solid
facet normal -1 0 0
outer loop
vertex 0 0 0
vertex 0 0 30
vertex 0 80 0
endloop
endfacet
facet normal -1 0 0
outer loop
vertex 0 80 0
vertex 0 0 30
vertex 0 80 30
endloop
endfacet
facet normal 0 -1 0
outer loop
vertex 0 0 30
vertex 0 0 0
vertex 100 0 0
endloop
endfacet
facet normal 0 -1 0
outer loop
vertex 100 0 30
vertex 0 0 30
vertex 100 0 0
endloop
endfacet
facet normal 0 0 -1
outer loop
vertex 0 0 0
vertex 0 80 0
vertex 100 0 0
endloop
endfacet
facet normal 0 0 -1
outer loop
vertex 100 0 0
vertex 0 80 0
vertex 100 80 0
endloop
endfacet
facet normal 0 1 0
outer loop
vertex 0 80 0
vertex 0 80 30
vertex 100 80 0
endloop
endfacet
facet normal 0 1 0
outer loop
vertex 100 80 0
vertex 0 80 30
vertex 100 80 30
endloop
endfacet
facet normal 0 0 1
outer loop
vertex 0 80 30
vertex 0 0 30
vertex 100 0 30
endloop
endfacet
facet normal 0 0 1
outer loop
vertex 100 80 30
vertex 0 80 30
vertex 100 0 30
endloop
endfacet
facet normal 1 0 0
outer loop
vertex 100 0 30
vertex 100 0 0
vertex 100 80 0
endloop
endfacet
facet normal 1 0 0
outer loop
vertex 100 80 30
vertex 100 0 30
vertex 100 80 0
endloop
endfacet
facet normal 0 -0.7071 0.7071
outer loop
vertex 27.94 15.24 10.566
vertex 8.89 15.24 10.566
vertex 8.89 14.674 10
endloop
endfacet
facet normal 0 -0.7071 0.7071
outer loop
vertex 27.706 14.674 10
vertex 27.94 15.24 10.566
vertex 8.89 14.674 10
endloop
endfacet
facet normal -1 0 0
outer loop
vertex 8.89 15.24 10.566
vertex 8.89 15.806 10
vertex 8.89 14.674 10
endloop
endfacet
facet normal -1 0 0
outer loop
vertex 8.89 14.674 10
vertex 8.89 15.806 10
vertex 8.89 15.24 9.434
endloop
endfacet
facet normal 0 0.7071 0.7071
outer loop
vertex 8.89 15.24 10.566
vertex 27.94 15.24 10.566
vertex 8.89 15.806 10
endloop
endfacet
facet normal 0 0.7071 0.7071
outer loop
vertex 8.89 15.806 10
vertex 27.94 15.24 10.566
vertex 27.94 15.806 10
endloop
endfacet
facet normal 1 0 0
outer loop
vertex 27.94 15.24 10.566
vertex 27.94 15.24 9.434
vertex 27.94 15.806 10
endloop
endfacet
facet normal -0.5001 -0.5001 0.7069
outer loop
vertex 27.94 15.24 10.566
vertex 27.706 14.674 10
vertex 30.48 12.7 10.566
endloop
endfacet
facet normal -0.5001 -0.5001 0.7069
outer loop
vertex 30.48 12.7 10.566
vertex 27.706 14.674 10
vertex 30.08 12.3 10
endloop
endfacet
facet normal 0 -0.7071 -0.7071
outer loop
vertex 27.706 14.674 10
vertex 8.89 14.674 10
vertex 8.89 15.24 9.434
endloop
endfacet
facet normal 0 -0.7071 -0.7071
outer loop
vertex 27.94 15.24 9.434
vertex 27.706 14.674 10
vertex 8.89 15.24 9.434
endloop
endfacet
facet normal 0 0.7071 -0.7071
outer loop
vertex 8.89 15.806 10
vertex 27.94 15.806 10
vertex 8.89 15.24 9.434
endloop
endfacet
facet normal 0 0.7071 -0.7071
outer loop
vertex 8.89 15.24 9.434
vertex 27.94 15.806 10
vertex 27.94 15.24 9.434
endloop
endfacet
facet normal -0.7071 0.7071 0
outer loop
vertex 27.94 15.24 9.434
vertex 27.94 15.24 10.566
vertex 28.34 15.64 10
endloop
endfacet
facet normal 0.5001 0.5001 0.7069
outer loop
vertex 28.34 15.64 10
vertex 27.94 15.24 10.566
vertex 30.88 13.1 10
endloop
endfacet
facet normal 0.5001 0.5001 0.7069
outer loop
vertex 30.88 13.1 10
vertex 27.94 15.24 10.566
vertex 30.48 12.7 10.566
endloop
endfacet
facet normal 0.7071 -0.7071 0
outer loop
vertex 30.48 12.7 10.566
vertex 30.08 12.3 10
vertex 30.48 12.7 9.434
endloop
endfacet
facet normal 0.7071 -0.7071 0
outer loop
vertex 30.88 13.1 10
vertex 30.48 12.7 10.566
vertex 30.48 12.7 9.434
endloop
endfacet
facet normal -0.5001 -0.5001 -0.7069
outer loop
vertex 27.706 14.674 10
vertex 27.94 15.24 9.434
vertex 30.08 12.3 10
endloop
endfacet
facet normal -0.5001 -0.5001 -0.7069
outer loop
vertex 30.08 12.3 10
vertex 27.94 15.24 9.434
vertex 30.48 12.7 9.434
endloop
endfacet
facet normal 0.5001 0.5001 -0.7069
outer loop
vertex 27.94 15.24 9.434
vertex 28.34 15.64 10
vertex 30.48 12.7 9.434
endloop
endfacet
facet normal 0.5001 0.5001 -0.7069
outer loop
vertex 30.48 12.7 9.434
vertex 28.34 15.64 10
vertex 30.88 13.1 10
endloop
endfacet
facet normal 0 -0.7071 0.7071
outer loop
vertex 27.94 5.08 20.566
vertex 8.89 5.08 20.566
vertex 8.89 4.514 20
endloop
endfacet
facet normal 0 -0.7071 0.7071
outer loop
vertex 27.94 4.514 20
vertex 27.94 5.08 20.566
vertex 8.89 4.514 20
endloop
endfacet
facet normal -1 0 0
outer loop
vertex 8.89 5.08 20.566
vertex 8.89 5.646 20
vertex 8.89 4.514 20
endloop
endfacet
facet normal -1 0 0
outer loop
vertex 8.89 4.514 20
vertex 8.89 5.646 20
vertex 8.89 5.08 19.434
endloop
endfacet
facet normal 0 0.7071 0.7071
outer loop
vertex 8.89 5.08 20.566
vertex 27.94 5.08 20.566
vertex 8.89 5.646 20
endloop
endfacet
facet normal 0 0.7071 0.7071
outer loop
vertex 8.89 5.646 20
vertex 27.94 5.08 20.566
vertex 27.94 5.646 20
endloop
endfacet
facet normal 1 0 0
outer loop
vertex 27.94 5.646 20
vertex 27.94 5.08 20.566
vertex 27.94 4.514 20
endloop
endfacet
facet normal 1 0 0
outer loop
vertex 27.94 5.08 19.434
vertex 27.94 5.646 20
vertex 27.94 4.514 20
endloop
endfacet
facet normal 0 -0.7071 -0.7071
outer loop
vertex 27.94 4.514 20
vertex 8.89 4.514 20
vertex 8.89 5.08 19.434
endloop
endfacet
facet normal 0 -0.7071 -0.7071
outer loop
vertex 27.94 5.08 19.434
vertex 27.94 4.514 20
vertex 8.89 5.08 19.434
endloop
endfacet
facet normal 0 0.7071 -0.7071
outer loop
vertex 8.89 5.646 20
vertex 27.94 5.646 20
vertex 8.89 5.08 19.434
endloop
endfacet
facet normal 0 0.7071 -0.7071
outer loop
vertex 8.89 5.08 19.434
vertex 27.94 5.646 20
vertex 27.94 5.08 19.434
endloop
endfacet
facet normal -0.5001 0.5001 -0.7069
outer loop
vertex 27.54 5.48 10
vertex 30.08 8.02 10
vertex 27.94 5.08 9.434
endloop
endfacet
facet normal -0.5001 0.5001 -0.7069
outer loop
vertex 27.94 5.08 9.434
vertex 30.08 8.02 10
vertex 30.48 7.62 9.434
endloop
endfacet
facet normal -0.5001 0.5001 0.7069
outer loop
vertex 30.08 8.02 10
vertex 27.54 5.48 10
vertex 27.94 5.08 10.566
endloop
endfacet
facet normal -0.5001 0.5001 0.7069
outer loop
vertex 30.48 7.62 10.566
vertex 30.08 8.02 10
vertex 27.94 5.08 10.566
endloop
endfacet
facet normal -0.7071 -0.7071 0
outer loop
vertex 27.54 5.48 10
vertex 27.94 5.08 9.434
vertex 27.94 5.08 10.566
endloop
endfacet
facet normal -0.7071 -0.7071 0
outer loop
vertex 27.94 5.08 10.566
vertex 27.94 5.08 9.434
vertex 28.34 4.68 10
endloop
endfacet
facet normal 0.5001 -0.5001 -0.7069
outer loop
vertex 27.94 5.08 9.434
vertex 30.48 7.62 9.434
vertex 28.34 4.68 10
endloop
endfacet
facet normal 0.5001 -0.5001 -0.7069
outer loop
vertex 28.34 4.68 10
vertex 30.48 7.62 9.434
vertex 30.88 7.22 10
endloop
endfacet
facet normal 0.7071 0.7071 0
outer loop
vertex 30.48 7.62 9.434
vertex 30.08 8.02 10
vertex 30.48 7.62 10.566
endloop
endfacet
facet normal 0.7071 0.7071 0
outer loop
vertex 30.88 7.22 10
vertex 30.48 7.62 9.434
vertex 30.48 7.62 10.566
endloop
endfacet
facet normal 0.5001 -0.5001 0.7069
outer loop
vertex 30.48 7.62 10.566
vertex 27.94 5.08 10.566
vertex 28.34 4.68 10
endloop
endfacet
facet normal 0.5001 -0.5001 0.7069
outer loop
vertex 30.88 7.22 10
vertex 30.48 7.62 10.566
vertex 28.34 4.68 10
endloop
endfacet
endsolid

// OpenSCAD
difference() 
{ 
cube([100.000,80.000,30.000], center = false); 
 translate([8.890,15.240,10.000]) rotate([0.0,90.0,0.0]) 
 linear_extrude(height = 19.050, center = false) 
 rotate([0,0,45]) square(size = 0.800, center = true); 
 translate([27.940,15.240,10.000]) rotate([0.0,90.0,-45.0]) 
 linear_extrude(height = 3.592, center = false) 
 rotate([0,0,45]) square(size = 0.800, center = true); 
 translate([8.890,5.080,20.000]) rotate([0.0,90.0,0.0]) 
 linear_extrude(height = 19.050, center = false) 
 rotate([0,0,45]) square(size = 0.800, center = true); 
 translate([27.940,5.080,10.000]) rotate([0.0,90.0,45.0]) 
 linear_extrude(height = 3.592, center = false) 
 rotate([0,0,45]) square(size = 0.800, center = true); 
} 
